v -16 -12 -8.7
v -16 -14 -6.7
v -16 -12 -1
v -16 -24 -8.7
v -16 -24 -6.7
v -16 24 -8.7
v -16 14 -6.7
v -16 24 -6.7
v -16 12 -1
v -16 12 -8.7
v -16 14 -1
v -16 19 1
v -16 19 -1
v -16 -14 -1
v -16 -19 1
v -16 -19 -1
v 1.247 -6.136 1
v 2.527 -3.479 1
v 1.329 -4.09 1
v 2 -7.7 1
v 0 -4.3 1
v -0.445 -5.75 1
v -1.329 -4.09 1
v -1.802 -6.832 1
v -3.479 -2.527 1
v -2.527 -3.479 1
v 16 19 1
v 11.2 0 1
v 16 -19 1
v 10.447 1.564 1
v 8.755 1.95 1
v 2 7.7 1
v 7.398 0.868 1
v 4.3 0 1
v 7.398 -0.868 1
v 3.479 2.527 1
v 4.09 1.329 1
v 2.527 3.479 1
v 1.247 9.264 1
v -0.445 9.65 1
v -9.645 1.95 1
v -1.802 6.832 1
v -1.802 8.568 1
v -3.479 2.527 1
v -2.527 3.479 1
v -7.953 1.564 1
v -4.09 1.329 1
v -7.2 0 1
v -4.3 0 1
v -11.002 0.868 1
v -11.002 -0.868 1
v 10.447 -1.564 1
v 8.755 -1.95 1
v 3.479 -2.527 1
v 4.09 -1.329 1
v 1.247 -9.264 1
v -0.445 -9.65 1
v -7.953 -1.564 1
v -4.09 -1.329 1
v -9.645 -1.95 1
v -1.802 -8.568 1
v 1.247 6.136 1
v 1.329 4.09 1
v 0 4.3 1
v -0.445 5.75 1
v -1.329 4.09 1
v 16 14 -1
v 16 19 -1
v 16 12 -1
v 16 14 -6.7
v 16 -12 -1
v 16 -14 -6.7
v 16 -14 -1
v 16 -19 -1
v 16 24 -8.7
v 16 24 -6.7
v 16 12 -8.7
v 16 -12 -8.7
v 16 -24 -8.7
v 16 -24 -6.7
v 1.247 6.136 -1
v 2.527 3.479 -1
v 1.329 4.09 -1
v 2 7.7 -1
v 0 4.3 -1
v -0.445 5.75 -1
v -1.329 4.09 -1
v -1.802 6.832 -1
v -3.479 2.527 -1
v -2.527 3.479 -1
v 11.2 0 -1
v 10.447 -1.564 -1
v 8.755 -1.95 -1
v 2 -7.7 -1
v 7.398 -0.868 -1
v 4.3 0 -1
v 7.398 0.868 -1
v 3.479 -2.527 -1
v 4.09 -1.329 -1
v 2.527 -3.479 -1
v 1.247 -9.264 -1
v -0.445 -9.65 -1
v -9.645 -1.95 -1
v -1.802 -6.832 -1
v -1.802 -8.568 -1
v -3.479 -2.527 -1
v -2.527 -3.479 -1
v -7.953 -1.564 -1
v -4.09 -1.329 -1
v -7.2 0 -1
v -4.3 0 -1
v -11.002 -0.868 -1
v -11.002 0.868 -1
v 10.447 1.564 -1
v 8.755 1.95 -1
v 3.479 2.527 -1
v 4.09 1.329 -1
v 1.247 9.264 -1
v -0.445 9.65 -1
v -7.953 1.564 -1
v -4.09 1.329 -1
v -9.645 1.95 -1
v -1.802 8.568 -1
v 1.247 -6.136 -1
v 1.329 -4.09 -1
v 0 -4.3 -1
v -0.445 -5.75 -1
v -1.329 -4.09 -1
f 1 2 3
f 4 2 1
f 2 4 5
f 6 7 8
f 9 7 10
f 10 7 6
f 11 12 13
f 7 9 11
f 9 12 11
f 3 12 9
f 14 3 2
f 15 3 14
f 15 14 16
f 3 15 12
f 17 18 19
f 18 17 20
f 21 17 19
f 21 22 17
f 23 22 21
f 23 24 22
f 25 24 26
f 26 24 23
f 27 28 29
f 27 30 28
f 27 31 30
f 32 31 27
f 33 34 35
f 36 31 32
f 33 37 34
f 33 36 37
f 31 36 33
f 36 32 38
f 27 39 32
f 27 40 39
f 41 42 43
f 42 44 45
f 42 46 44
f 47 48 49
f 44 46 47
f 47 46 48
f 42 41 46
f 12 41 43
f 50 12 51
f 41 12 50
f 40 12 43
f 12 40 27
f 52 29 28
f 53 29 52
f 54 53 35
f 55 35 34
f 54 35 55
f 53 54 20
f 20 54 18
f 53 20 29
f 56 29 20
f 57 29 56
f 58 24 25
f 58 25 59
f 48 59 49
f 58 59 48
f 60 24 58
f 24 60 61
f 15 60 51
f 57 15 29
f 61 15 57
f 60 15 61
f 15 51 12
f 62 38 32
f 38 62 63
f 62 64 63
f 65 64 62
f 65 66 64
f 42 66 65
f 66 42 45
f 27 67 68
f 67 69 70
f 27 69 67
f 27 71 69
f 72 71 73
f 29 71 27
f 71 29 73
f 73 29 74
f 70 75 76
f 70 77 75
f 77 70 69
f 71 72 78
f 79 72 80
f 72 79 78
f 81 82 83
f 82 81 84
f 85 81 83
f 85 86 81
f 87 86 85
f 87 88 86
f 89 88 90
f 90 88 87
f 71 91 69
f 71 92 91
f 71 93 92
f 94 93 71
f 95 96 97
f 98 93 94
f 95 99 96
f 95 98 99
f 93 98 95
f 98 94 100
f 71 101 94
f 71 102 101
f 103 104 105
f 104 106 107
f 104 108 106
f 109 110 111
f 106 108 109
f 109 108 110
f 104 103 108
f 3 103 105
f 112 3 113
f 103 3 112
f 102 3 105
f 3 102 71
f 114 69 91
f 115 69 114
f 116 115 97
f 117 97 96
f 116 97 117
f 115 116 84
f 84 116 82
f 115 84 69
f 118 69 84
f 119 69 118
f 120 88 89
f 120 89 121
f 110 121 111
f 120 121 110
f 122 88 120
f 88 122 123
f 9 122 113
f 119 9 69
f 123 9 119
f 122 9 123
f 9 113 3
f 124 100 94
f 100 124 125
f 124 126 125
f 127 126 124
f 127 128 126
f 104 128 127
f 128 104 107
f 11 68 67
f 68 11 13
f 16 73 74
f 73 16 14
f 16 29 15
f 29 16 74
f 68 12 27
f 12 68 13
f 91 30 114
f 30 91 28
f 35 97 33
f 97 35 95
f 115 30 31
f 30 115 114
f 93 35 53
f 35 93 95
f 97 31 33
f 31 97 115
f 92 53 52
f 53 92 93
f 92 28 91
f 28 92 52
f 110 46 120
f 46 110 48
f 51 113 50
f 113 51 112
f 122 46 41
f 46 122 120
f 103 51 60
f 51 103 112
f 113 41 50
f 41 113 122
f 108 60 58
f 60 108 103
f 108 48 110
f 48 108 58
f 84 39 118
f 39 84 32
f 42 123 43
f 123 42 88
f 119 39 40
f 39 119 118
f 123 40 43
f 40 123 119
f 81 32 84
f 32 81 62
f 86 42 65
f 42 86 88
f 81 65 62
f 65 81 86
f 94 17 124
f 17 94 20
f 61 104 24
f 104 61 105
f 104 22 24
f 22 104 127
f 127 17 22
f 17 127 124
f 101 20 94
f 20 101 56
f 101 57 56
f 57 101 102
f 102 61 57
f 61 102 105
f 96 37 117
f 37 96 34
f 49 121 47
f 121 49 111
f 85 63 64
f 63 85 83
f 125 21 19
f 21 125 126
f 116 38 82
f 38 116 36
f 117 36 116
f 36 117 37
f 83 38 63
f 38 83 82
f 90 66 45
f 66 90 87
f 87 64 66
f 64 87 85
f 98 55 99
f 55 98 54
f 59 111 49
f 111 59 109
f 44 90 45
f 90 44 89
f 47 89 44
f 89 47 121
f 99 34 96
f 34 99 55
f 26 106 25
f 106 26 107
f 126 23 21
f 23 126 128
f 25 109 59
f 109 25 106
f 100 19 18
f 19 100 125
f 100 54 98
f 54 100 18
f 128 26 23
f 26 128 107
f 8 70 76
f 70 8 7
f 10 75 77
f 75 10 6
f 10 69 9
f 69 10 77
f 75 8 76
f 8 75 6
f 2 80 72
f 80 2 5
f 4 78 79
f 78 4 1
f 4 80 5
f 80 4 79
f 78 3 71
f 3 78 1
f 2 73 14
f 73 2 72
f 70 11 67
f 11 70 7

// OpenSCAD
difference(){
    union(){
        cube([32,38,2],center=true);
        //translate([0,0,1])cylinder(h=100, d=27.7); //uncomment for motor analogue
    }
    translate([9.2,0,-1])cylinder(h=2, d=4,$fn=7);
    translate([-9.2,0,-1])cylinder(h=2, d=4, $fn=7);
    translate([0,7.7,-1])cylinder(h=2, d=4,$fn=7);
    translate([0,-7.7,-1])cylinder(h=2, d=4, $fn=7);
    translate([0,0,-1])cylinder(h=2, d=8.6, $fn=20);
}
translate([0,18,-7.7])cube([32,12,2],center=true);
translate([0,-18,-7.7])cube([32,12,2],center=true);
translate([0,-13,-4])cube([32,2,6],center=true);
translate([0,13,-4])cube([32,2,6],center=true);
